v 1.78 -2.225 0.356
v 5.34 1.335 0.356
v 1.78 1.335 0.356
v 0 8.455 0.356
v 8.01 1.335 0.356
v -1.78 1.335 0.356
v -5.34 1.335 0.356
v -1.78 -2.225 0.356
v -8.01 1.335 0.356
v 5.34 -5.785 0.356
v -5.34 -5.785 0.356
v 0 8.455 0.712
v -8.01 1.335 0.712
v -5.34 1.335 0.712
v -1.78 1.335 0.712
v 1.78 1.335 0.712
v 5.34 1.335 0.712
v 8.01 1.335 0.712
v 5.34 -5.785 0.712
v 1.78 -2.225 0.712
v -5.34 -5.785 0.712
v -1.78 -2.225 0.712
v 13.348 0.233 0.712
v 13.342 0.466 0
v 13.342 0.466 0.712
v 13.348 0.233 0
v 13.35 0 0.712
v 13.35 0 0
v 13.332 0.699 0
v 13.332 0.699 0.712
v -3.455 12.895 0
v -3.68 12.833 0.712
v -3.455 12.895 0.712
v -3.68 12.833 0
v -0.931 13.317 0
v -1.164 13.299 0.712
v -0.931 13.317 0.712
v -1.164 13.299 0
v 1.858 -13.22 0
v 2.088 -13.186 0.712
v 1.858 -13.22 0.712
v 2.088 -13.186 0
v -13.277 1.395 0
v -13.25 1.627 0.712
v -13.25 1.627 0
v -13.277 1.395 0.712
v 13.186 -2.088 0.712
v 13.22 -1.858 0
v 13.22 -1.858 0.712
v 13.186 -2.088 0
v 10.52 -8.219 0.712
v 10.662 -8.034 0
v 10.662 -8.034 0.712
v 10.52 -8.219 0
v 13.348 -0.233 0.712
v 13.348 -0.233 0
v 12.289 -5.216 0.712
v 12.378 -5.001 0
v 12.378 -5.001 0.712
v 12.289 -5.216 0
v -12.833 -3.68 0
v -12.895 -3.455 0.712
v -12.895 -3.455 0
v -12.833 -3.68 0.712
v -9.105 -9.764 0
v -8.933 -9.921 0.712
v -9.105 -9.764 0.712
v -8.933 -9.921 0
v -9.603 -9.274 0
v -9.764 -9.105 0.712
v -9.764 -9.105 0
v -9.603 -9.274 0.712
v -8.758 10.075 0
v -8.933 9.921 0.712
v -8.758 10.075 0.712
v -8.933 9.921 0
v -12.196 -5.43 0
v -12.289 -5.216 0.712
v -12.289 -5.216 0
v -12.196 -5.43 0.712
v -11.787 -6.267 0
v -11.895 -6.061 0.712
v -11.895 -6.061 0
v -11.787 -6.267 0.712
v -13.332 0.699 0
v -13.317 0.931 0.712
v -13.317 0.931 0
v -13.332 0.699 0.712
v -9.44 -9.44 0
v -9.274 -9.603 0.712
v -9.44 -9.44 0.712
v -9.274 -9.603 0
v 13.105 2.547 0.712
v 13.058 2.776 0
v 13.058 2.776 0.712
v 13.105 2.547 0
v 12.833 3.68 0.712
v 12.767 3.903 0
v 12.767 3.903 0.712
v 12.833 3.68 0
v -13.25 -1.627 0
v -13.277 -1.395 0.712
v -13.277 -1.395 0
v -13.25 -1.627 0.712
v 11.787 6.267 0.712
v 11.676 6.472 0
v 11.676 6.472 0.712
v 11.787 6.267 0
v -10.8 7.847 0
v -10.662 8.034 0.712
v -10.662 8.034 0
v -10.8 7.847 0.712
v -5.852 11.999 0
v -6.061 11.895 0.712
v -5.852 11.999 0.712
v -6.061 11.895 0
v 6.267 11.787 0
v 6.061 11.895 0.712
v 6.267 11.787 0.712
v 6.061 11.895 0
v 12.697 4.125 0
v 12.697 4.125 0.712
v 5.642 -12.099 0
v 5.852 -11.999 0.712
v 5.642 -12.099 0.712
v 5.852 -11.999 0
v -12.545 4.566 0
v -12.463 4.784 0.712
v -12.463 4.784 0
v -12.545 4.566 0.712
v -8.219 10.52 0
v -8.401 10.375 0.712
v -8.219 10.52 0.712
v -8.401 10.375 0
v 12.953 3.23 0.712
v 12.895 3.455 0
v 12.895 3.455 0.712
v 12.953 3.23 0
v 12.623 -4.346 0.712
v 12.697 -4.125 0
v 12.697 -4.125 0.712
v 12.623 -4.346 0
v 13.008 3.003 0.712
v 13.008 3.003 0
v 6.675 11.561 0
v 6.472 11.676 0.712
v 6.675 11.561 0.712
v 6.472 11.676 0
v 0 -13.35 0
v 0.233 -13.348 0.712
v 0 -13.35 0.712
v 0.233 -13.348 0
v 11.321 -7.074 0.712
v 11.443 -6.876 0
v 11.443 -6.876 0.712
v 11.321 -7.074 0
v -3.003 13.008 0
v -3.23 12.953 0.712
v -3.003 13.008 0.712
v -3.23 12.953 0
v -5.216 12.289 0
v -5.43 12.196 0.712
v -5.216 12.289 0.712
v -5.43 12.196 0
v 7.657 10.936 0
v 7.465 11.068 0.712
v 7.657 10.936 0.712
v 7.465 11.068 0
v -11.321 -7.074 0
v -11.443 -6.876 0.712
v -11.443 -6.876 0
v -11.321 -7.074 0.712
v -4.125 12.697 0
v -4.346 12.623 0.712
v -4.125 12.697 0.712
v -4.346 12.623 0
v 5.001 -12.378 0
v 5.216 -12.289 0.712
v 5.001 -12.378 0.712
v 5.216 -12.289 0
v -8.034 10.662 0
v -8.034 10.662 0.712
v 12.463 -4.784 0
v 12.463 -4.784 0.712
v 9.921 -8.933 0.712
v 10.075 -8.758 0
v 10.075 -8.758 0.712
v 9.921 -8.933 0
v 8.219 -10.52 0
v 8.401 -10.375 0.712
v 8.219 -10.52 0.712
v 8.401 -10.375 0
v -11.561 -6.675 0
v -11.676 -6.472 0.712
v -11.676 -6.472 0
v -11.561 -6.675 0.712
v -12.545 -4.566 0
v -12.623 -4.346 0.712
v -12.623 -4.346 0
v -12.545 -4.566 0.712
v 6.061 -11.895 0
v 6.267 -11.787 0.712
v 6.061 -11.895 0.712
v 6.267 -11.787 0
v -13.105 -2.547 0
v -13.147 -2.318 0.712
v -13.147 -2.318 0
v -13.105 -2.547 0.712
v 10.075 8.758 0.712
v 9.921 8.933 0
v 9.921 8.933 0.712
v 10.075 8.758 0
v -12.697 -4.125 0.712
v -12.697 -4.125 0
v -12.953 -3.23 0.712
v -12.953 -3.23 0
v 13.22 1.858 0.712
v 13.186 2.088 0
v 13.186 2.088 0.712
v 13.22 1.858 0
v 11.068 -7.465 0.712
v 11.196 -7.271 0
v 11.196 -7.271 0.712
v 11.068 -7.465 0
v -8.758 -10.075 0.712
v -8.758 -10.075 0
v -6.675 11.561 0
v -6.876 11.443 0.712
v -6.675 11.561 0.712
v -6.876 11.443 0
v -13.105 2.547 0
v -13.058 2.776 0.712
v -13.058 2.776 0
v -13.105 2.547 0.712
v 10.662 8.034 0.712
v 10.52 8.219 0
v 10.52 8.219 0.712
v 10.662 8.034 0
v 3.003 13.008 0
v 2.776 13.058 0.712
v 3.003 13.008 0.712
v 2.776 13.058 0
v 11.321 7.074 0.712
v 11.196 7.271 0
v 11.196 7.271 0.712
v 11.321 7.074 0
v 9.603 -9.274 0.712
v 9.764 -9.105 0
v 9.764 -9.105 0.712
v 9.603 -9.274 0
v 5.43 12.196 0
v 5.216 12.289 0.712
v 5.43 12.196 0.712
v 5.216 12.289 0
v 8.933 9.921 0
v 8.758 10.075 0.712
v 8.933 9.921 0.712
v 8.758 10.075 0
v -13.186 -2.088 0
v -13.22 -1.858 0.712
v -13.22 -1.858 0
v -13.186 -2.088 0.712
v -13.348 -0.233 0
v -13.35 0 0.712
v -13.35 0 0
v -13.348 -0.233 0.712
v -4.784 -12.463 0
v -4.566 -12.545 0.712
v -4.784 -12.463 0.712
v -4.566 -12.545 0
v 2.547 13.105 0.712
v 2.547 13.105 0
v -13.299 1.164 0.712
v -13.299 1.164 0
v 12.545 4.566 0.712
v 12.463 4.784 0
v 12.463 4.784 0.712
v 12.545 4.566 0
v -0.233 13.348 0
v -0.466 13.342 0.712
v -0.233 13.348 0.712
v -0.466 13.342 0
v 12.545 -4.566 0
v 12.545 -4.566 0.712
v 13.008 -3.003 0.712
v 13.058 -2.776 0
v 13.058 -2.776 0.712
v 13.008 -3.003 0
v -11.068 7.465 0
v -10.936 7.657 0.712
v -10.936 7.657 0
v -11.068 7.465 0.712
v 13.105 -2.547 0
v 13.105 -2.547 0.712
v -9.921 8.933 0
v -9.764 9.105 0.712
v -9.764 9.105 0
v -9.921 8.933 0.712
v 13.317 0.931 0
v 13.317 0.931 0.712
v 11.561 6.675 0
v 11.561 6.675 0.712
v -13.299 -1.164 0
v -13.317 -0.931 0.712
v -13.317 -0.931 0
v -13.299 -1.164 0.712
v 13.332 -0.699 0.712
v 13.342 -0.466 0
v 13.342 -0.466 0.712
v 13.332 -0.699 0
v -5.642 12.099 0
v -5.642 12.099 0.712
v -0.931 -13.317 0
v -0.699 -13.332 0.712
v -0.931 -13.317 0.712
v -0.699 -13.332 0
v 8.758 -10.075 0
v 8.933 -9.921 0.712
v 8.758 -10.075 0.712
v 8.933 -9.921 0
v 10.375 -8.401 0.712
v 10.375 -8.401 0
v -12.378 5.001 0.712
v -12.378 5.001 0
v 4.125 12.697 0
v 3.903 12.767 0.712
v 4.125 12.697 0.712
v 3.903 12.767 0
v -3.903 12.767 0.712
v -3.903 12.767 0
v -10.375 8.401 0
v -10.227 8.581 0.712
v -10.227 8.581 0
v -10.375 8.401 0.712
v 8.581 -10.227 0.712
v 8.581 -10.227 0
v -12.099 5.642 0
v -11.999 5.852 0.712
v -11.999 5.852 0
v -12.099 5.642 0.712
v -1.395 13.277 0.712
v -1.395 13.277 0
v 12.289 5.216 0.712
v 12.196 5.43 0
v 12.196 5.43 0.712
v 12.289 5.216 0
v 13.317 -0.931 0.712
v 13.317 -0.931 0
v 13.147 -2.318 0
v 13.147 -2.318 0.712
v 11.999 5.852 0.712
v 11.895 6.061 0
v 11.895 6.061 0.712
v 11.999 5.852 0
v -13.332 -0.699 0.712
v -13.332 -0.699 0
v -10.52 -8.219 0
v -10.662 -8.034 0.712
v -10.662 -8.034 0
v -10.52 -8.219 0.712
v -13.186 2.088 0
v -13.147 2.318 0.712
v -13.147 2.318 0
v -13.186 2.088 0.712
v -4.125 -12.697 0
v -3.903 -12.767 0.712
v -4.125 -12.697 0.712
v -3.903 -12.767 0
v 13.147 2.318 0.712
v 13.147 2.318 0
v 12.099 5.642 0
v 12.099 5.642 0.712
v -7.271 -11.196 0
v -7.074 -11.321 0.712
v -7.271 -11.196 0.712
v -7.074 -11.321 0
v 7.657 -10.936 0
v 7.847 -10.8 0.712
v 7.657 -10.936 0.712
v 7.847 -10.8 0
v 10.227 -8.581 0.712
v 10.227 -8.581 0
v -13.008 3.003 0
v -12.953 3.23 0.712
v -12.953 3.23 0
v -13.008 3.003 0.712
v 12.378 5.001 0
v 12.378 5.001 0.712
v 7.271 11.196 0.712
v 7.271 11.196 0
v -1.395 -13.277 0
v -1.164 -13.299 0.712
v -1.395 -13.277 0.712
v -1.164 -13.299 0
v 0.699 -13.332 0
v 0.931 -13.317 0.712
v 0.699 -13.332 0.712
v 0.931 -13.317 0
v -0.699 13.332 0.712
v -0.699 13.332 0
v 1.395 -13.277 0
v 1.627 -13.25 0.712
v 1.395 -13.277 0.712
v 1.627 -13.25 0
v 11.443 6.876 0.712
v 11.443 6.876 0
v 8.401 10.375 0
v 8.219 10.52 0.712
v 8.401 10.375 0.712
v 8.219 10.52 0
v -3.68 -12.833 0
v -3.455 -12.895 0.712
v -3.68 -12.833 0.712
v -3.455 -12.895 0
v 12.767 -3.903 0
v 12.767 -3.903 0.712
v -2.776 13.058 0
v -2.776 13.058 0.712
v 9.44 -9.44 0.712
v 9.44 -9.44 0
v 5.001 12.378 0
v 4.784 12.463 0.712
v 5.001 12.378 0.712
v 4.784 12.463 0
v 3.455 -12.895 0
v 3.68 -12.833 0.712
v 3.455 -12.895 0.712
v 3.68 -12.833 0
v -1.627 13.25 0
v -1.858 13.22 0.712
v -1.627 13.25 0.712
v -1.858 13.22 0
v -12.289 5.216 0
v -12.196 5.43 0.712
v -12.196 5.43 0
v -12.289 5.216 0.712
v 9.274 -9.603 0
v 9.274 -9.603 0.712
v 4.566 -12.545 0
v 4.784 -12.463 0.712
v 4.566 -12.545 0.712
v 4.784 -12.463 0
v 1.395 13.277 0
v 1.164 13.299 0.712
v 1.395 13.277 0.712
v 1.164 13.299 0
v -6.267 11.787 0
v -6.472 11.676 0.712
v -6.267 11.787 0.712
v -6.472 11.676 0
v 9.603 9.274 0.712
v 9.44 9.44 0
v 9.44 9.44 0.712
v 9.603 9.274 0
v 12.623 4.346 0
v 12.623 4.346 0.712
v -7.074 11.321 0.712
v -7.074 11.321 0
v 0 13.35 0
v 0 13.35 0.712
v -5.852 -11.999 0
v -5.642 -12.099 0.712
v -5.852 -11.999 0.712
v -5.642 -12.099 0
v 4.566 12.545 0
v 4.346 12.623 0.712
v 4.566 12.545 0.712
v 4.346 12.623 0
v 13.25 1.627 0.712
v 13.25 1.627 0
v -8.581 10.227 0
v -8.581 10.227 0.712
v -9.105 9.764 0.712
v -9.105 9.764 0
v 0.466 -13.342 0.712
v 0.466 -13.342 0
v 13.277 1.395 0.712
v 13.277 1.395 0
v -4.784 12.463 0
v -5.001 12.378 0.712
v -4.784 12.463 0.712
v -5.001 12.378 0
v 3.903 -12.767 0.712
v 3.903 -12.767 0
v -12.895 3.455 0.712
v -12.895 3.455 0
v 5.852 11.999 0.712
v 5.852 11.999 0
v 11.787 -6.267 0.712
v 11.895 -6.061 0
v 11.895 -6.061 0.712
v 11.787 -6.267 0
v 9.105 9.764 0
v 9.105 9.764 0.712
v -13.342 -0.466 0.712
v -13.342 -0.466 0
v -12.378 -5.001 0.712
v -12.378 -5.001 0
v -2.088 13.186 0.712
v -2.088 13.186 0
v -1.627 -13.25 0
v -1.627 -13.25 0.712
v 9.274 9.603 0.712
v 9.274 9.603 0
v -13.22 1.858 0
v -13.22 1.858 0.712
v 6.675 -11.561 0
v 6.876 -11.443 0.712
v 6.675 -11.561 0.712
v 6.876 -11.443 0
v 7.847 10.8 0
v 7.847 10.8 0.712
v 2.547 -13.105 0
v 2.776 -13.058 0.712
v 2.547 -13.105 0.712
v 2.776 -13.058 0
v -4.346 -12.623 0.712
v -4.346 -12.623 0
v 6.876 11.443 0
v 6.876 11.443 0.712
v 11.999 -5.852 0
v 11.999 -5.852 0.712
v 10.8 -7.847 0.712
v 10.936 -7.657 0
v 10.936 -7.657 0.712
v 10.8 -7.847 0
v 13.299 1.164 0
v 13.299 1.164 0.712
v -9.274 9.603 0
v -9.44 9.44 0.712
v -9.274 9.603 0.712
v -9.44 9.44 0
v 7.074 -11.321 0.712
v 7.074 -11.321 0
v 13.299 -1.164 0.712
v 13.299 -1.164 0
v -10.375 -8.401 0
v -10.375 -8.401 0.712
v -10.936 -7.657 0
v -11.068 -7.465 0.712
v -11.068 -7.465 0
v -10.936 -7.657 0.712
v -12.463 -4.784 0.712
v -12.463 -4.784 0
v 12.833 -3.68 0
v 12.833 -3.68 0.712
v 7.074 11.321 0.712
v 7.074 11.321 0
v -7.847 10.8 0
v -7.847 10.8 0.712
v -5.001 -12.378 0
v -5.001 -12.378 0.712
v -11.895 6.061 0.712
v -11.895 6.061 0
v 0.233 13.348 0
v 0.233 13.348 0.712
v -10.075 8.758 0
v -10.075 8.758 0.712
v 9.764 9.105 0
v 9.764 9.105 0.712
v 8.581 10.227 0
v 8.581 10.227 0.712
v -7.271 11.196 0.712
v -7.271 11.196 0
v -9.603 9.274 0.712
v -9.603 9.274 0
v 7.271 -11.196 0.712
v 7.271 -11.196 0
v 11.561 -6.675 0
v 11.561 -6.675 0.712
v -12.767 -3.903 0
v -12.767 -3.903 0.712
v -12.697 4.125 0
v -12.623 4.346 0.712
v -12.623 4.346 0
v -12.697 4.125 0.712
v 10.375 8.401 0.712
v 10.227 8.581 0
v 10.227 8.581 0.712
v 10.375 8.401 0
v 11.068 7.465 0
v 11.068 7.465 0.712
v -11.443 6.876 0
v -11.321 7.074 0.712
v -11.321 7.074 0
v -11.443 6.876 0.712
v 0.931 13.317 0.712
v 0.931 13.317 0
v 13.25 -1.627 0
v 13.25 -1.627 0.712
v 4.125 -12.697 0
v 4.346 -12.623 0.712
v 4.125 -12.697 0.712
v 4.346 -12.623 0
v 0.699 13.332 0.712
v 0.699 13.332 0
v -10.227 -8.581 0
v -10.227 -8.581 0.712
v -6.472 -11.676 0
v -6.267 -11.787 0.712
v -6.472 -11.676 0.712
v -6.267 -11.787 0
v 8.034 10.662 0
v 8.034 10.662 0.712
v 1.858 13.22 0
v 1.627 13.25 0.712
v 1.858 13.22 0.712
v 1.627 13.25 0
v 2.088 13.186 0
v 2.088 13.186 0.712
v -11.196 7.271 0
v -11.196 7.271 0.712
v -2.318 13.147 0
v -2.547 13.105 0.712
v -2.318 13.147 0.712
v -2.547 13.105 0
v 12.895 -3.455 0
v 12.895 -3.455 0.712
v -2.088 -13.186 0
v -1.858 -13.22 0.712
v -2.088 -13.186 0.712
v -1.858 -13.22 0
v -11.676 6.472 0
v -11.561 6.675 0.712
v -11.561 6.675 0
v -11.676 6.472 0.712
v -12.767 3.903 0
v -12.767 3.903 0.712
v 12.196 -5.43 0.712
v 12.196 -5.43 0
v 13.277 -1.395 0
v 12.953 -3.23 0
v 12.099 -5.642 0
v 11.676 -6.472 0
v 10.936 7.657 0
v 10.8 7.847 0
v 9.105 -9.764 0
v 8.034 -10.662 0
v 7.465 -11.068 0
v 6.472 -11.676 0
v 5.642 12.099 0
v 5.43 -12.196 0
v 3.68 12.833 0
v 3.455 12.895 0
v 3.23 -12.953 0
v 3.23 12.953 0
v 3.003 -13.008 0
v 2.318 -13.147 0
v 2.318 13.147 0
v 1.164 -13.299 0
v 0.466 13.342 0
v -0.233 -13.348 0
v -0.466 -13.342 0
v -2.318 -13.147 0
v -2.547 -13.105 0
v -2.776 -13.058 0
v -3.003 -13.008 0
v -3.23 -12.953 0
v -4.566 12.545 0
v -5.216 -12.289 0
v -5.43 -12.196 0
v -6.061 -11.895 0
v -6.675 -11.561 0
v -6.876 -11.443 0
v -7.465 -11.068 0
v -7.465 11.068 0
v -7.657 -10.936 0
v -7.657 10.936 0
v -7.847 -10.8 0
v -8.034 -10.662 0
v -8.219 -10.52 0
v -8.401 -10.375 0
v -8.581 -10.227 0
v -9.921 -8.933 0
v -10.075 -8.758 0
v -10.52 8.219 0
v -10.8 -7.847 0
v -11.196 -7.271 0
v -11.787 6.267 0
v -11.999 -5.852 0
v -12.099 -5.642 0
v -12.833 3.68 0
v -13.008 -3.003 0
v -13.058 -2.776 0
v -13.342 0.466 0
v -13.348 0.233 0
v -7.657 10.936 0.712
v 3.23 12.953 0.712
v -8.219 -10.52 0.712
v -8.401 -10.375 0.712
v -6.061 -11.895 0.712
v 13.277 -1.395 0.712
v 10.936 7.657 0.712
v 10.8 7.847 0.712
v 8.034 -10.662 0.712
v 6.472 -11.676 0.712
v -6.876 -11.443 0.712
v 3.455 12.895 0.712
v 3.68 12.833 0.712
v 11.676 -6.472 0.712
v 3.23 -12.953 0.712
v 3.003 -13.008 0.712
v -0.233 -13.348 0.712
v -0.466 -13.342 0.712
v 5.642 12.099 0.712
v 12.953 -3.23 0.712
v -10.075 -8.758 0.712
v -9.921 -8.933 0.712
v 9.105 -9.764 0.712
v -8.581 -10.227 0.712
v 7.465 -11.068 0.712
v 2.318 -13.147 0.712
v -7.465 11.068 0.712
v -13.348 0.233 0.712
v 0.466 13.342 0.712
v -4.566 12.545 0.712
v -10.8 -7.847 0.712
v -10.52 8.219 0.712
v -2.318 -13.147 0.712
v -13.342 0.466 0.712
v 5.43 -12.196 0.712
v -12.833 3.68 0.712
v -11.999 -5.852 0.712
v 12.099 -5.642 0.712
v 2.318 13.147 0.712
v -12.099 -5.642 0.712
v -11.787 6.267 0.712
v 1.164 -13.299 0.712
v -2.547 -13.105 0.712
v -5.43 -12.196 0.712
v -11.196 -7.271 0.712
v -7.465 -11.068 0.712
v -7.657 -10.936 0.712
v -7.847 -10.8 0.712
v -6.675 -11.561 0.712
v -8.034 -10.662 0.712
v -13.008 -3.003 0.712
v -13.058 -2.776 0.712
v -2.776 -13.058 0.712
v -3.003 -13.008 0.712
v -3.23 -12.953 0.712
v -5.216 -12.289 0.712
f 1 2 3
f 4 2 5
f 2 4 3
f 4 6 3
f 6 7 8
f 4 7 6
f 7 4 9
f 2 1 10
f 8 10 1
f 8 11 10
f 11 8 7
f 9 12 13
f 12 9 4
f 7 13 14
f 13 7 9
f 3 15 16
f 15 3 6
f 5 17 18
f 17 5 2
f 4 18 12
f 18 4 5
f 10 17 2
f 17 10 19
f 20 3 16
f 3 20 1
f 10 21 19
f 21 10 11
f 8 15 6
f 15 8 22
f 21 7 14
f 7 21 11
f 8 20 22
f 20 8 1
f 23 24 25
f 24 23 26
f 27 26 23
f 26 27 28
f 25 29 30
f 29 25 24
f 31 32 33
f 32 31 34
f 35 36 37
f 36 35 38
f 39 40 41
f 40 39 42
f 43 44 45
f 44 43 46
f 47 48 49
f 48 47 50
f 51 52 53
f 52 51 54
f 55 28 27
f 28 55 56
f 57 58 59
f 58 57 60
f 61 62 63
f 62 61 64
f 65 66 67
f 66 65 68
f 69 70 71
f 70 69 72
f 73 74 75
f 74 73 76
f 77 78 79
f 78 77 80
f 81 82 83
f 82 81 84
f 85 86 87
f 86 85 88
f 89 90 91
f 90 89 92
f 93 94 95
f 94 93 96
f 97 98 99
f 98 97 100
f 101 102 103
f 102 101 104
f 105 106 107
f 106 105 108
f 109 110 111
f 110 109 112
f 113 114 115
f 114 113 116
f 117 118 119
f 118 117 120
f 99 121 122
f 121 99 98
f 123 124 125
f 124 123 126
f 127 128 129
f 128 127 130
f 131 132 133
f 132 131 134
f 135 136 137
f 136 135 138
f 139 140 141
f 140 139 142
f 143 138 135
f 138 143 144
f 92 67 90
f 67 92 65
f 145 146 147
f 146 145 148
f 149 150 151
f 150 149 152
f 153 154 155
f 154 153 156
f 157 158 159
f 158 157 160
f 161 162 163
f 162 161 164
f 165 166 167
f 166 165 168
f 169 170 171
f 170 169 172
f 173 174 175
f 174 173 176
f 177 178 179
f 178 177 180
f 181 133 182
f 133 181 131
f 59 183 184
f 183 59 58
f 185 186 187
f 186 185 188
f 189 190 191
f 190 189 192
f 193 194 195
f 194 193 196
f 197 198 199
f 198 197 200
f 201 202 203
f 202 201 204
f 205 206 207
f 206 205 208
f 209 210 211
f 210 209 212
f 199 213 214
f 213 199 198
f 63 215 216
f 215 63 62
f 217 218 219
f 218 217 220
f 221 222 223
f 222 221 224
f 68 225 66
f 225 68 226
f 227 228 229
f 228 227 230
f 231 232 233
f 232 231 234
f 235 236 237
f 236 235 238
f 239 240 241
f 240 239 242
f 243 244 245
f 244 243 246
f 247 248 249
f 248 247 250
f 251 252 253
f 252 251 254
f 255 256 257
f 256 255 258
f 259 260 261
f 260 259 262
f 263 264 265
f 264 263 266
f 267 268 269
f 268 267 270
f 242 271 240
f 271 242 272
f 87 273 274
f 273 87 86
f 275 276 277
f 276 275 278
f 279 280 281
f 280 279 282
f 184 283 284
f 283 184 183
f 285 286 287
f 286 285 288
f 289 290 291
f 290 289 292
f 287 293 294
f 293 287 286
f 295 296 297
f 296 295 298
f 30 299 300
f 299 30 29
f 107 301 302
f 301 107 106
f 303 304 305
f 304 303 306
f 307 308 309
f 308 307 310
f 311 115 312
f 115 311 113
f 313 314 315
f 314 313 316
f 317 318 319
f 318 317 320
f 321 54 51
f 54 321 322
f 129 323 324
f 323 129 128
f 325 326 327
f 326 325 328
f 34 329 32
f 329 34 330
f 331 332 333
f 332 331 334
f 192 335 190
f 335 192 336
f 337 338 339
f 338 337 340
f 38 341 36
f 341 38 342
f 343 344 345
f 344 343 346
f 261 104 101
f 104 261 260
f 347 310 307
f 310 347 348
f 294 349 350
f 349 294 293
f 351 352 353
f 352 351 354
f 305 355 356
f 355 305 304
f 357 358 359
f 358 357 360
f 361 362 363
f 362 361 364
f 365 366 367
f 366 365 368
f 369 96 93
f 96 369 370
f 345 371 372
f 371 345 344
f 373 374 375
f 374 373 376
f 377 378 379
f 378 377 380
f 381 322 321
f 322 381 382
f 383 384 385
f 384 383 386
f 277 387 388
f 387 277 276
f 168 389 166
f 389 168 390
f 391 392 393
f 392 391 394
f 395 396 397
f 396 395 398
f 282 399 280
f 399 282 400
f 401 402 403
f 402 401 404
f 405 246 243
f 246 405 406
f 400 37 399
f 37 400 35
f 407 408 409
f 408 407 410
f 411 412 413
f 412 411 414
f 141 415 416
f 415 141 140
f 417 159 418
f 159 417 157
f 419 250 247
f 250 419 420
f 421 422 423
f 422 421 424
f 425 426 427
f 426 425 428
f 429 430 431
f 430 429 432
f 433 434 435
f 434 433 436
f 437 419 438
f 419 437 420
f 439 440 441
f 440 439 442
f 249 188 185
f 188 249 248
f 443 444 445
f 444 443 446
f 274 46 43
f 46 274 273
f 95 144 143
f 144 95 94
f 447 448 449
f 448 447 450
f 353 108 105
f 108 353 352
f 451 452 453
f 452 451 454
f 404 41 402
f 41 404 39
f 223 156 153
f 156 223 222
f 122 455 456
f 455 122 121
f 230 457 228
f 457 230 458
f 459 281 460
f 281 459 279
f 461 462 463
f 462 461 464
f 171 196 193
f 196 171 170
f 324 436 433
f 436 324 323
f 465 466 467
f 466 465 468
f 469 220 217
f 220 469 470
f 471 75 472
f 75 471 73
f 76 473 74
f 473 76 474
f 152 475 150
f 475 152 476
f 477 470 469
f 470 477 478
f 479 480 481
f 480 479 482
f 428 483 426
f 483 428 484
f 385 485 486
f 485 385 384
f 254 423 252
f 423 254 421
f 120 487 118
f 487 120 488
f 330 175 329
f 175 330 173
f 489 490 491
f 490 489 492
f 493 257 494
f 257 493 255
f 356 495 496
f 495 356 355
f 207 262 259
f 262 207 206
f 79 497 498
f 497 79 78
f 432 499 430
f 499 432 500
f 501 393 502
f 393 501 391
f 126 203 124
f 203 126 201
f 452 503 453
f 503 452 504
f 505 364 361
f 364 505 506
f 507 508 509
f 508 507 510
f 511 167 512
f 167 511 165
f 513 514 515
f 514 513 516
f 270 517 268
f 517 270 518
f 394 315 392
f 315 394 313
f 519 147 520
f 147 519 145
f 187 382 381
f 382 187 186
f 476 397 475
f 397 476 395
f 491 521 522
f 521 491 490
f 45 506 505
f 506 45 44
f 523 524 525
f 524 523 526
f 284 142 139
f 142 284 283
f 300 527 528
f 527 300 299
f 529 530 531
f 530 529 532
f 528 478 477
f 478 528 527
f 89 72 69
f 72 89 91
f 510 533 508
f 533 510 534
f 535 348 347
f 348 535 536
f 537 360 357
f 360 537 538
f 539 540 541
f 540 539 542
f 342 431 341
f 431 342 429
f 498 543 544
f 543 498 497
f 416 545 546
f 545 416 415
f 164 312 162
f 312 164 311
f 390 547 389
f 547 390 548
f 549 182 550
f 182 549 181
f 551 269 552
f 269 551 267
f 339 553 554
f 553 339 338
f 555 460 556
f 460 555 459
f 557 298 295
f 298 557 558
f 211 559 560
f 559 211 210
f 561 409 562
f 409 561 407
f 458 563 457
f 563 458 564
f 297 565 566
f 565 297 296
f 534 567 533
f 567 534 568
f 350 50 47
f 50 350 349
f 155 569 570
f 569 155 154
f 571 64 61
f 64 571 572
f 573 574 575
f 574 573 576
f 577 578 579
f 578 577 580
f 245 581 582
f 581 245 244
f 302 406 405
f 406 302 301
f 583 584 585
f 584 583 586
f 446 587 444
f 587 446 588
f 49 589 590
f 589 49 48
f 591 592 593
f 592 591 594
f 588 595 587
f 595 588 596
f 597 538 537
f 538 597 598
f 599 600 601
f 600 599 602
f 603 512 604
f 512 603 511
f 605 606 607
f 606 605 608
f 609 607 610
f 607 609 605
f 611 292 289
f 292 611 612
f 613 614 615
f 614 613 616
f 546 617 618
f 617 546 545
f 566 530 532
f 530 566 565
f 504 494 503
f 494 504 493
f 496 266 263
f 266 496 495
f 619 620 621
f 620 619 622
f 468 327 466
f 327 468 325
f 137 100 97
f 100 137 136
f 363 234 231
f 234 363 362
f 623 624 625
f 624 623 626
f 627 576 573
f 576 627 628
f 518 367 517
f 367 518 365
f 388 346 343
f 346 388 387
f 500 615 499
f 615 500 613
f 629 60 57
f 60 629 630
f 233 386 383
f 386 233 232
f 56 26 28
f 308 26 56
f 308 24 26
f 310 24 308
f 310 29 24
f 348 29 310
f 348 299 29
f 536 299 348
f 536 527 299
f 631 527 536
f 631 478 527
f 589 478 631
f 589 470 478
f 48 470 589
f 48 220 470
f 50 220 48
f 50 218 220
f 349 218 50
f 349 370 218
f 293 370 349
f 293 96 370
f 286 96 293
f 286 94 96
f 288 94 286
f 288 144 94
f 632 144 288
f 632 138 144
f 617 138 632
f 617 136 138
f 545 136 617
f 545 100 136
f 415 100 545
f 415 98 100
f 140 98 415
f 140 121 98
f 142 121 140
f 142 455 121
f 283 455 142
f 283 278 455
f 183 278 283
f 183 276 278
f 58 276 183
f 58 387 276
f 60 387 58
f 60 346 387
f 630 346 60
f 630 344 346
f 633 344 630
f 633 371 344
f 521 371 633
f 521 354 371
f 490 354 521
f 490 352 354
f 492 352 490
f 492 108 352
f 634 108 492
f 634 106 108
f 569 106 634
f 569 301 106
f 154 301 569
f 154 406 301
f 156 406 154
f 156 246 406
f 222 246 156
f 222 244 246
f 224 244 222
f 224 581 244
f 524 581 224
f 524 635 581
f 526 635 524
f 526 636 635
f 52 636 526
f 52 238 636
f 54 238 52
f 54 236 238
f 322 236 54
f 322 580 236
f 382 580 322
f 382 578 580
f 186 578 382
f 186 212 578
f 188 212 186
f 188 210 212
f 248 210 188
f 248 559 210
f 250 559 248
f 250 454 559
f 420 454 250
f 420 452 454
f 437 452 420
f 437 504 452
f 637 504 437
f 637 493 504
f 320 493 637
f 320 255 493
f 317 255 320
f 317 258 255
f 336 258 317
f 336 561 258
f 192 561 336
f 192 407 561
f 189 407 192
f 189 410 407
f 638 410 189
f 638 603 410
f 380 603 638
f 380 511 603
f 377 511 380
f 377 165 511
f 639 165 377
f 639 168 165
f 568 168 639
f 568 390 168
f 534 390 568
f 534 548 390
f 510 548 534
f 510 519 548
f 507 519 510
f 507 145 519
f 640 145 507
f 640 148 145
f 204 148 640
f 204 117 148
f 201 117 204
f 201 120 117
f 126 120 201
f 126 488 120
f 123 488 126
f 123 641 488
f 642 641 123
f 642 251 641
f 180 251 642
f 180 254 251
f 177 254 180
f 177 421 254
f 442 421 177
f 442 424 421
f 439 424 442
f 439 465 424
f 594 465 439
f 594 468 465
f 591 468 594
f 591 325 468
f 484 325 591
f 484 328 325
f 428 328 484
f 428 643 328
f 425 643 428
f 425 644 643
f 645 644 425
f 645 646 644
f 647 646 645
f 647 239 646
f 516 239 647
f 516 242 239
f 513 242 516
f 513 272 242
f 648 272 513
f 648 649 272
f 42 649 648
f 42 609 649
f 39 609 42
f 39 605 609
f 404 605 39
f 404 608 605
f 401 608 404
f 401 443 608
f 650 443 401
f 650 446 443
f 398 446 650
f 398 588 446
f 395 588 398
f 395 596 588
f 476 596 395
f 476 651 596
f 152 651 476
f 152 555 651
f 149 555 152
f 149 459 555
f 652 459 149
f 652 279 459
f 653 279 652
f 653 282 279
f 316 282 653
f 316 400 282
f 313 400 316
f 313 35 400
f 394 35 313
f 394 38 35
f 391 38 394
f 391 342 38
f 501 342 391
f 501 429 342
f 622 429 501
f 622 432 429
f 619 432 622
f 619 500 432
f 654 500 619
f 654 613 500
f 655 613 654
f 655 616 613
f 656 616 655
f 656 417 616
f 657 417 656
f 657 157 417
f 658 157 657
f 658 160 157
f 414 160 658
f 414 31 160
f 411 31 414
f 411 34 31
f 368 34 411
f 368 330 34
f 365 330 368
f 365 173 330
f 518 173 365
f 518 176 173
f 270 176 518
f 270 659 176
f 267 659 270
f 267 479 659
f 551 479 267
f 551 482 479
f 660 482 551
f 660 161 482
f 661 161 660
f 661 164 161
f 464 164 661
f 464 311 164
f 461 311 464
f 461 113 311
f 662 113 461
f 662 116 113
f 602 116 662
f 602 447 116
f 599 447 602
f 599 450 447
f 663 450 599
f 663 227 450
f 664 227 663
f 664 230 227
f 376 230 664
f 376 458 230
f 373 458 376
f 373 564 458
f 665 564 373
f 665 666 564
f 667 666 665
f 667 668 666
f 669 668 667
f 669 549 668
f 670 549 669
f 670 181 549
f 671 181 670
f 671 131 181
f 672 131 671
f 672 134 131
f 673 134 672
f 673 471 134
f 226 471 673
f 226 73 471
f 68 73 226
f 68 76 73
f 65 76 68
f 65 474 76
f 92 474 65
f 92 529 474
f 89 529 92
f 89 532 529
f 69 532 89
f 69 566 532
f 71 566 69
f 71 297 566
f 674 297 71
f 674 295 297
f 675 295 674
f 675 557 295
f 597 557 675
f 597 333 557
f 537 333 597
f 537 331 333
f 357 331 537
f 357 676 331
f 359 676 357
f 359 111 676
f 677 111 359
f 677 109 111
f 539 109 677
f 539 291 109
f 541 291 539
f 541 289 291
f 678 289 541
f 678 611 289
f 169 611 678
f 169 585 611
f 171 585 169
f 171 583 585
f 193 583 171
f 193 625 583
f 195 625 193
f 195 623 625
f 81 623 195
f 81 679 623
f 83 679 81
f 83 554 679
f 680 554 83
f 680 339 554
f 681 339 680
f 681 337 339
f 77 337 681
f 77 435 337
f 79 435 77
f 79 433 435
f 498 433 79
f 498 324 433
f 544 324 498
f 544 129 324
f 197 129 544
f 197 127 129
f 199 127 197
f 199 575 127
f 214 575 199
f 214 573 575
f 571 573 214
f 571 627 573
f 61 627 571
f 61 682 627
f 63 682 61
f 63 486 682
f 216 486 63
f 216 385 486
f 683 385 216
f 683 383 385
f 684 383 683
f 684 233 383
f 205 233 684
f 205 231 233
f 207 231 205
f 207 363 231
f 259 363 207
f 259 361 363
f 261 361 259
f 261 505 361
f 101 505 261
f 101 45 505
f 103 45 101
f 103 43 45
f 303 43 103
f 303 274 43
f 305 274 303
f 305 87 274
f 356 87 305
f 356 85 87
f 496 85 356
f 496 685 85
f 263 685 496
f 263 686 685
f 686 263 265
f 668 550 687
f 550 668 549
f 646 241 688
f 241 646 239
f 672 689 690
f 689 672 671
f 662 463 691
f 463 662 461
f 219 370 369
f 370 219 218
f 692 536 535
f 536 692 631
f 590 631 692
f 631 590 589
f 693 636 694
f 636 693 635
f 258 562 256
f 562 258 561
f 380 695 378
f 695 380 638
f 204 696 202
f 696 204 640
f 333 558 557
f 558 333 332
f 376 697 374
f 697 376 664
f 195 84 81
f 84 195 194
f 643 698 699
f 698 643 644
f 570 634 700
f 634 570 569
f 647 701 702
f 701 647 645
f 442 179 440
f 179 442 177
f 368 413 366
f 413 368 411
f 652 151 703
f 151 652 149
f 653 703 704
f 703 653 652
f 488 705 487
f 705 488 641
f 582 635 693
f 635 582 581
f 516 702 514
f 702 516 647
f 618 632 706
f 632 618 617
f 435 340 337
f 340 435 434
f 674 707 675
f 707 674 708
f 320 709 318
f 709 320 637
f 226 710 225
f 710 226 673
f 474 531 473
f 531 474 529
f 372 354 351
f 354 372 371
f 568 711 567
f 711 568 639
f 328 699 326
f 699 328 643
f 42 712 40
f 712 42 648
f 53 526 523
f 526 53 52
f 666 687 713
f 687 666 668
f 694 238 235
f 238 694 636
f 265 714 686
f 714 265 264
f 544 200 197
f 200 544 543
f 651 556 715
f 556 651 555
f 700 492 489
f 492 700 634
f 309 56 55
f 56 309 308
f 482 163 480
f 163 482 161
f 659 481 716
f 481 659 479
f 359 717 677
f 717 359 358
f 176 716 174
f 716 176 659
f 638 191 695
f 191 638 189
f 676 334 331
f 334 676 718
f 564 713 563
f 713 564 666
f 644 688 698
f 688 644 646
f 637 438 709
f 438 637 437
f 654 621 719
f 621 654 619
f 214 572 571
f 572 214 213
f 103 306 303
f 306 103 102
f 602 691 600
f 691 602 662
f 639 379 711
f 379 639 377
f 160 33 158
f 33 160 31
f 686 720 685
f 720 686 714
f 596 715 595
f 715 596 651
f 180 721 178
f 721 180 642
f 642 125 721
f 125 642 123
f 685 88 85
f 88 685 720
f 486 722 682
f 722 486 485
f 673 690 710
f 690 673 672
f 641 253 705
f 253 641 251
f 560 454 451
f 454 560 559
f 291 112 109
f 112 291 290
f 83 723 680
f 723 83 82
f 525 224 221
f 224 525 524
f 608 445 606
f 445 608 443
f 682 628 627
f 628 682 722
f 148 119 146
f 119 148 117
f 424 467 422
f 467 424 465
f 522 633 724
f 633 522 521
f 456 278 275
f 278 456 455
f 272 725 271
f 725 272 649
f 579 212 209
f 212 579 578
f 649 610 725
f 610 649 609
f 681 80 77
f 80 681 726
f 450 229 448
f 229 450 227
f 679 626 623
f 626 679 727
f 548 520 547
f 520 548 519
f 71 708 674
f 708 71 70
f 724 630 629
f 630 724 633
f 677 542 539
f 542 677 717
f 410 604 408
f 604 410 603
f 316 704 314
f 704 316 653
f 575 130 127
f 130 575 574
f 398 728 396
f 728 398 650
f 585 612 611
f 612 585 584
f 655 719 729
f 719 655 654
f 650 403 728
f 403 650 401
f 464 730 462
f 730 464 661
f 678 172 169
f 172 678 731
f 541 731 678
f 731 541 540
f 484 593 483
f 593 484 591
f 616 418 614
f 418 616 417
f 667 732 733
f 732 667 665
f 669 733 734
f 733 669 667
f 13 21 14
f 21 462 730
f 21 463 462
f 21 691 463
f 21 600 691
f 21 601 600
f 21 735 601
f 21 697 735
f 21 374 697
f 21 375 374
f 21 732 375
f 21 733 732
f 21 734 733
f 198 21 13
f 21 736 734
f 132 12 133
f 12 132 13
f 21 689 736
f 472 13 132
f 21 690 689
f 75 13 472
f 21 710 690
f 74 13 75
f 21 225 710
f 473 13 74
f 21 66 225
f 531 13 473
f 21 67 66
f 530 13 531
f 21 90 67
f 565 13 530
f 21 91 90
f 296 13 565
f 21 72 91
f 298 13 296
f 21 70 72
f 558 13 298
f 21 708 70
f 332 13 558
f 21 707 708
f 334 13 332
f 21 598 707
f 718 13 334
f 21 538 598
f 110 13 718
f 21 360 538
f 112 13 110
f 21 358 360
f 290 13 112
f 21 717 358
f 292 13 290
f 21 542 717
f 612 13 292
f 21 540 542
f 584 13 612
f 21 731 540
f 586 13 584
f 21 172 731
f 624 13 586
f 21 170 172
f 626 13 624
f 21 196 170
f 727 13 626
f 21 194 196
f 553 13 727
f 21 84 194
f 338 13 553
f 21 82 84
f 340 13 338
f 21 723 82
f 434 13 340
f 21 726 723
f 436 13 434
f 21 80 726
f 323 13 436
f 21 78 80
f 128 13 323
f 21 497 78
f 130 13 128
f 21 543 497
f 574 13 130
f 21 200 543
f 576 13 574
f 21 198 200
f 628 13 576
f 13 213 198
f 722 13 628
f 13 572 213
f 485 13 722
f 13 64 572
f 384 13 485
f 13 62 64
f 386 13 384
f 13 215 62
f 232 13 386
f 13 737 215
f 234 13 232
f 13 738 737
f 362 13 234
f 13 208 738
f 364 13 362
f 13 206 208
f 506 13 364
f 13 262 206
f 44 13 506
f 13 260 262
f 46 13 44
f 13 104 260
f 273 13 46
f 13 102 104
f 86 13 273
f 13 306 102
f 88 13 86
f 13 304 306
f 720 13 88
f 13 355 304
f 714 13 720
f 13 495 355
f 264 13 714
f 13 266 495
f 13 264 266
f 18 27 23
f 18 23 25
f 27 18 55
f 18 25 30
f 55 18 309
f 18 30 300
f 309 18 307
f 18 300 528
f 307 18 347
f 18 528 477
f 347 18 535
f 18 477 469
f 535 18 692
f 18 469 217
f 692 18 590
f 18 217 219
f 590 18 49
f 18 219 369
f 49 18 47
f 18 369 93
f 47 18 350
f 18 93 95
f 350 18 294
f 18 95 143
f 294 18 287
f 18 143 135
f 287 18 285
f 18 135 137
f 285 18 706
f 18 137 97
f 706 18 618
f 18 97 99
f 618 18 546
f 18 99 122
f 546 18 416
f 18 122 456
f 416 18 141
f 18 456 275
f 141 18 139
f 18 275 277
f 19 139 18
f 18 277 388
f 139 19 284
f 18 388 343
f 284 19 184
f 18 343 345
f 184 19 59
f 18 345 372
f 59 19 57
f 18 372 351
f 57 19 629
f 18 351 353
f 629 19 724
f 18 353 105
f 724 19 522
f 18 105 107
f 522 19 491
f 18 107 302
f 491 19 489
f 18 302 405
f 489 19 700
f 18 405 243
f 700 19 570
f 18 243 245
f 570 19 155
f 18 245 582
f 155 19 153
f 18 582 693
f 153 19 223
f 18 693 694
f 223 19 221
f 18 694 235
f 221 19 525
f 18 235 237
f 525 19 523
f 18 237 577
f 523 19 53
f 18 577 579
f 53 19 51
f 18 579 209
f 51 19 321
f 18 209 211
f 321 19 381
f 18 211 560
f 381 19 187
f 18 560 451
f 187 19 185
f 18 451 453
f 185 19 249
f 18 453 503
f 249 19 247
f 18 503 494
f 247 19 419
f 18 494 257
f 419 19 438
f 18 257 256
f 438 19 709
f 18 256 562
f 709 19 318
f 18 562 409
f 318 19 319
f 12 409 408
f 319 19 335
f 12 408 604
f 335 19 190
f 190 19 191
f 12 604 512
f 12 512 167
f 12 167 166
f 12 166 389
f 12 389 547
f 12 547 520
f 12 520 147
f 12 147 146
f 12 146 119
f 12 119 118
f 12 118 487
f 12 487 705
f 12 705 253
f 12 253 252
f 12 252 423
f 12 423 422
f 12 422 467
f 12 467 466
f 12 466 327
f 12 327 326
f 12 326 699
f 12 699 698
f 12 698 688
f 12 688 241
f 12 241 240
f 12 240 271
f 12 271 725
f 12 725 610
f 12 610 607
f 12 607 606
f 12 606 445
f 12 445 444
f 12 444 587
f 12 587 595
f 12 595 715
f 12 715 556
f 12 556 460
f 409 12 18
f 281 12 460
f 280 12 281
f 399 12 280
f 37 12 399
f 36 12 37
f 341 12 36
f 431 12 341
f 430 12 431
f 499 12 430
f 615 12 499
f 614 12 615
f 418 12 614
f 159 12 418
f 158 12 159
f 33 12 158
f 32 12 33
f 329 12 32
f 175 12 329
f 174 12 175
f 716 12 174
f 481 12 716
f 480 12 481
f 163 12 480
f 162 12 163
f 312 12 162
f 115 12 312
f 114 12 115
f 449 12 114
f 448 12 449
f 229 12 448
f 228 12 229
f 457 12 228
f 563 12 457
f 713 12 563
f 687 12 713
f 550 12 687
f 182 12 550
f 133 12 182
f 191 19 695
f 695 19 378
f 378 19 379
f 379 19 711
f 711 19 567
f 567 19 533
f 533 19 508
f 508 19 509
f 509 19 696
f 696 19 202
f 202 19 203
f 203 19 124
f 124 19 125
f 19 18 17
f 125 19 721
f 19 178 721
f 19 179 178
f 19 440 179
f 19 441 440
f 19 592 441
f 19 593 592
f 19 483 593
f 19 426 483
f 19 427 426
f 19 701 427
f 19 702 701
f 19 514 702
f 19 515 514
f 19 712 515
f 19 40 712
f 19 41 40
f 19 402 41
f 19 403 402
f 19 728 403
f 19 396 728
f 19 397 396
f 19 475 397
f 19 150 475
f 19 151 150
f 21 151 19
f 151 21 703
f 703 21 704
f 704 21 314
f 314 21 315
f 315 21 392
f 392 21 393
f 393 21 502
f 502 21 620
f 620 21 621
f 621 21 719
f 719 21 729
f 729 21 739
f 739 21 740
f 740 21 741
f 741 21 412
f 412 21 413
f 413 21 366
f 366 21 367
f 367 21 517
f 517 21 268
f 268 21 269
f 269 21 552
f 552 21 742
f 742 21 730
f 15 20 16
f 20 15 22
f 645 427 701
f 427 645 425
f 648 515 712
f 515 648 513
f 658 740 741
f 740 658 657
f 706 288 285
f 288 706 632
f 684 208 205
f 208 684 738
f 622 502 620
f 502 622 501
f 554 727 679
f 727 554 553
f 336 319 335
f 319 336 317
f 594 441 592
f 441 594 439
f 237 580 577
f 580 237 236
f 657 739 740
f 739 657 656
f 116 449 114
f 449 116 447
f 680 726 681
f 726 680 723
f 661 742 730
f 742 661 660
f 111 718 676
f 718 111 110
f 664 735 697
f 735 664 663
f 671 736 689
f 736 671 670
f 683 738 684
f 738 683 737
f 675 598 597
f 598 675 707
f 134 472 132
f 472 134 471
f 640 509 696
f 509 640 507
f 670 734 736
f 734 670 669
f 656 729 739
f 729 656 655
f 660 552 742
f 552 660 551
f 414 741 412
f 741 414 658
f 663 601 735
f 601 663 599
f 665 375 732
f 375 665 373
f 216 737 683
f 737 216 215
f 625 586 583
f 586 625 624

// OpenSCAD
// file: triangles.scad
/*
Triangles.scad
 Author: Tim Koopman
 https://github.com/tkoopman/Delta-Diamond/blob/master/OpenSCAD/Triangles.scad

         angleCA
           /|\
        a / H \ c
         /  |  \
 angleAB ------- angleBC
            b

Standard Parameters
	center: true/false
		If true same as centerXYZ = [true, true, true]

	centerXYZ: Vector of 3 true/false values [CenterX, CenterY, CenterZ]
		center must be left undef

	height: The 3D height of the Triangle. Ignored if heights defined

	heights: Vector of 3 height values heights @ [angleAB, angleBC, angleCA]
		If CenterZ is true each height will be centered individually, this means
		the shape will be different depending on CenterZ. Most times you will want
		CenterZ to be true to get the shape most people want.
*/

/* 
Triangle
	a: Length of side a
	b: Length of side b
	angle: angle at point angleAB
*/
module Triangle(
			a, b, angle, height=1, heights=undef,
			center=undef, centerXYZ=[false,false,false])
{
	// Calculate Heights at each point
	heightAB = ((heights==undef) ? height : heights[0])/2;
	heightBC = ((heights==undef) ? height : heights[1])/2;
	heightCA = ((heights==undef) ? height : heights[2])/2;
	centerZ = (center || (center==undef && centerXYZ[2]))?0:max(heightAB,heightBC,heightCA);

	// Calculate Offsets for centering
	offsetX = (center || (center==undef && centerXYZ[0]))?((cos(angle)*a)+b)/3:0;
	offsetY = (center || (center==undef && centerXYZ[1]))?(sin(angle)*a)/3:0;
	
	pointAB1 = [-offsetX,-offsetY, centerZ-heightAB];
	pointAB2 = [-offsetX,-offsetY, centerZ+heightAB];
	pointBC1 = [b-offsetX,-offsetY, centerZ-heightBC];
	pointBC2 = [b-offsetX,-offsetY, centerZ+heightBC];
	pointCA1 = [(cos(angle)*a)-offsetX,(sin(angle)*a)-offsetY, centerZ-heightCA];
	pointCA2 = [(cos(angle)*a)-offsetX,(sin(angle)*a)-offsetY, centerZ+heightCA];

	polyhedron(
		points=[	pointAB1, pointBC1, pointCA1,
					pointAB2, pointBC2, pointCA2 ],
		triangles=[	
			[0, 1, 2],
			[3, 5, 4],
			[0, 3, 1],
			[1, 3, 4],
			[1, 4, 2],
			[2, 4, 5],
			[2, 5, 0],
			[0, 5, 3] ] );
}

/*
Isosceles Triangle
	Exactly 2 of the following paramaters must be defined.
	If all 3 defined H will be ignored.
	b: length of side b
	angle: angle at points angleAB & angleBC.
*/
module Isosceles_Triangle(
			b, angle, H=undef, height=1, heights=undef,
			center=undef, centerXYZ=[true, false, false])
{
	valid = 	(angle!=undef)?((angle < 90) && (b!=undef||H!=undef)) : (b!=undef&&H!=undef);
	ANGLE = (angle!=undef) ? angle : atan(H / (b/2));
	a = (b==undef)?(H/sin((180-(angle*2))/2)) : 
		 (b / cos(ANGLE))/2;
	B = (b==undef)? (cos(angle)*a)*2:b;
	if (valid)
	{
		Triangle(a=a, b=B, angle=ANGLE, height=height, heights=heights,
					center=center, centerXYZ=centerXYZ);
	} else {
		echo("Invalid Isosceles_Triangle. Must specify any 2 of b, angle and H, and if angle used angle must be less than 90");
	}
}

/*
Right Angled Triangle
	Create a Right Angled Triangle where the hypotenuse will be calculated.

       |\
      a| \
       |  \
       ----
         b
	a: length of side a
	b: length of side b
*/
module Right_Angled_Triangle(
			a, b, height=1, heights=undef,
			center=undef, centerXYZ=[false, false, false])
{
	Triangle(a=a, b=b, angle=90, height=height, heights=heights,
				center=center, centerXYZ=centerXYZ);
}

/*
Wedge
	Is same as Right Angled Triangle with 2 different heights, and rotated.
	Good for creating support structures.
*/
module Wedge(a, b, w1, w2)
{
	rotate([90,0,0])
		Right_Angled_Triangle(a, b, heights=[w1, w2, w1], centerXYZ=[false, false, true]);
}

/*
Equilateral Triangle
	Create a Equilateral Triangle.

	l: Length of all sides (a, b & c)
	H: Triangle size will be based on the this 2D height
		When using H, l is ignored.
*/
module Equilateral_Triangle(
			l=10, H=undef, height=1, heights=undef,
			center=undef, centerXYZ=[true,false,false])
{
	L = (H==undef)?l:H/sin(60);
	Triangle(a=L,b=L,angle=60,height=height, heights=heights,
				center=center, centerXYZ=centerXYZ);
}

/*
Trapezoid
	Create a Basic Trapezoid (Based on Isosceles_Triangle)

            d
          /----\
         /  |   \
     a  /   H    \ c
       /    |     \
 angle ------------ angle
            b

	b: Length of side b
	angle: Angle at points angleAB & angleBC
	H: The 2D height at which the triangle should be cut to create the trapezoid
	heights: If vector of size 3 (Standard for triangles) both cd & da will be the same height, if vector have 4 values [ab,bc,cd,da] than each point can have different heights.
*/
module Trapezoid(
			b, angle=60, H, height=1, heights=undef,
			center=undef, centerXYZ=[true,false,false])
{
	validAngle = (angle < 90);
	adX = H / tan(angle);

	// Calculate Heights at each point
	heightAB = ((heights==undef) ? height : heights[0])/2;
	heightBC = ((heights==undef) ? height : heights[1])/2;
	heightCD = ((heights==undef) ? height : heights[2])/2;
	heightDA = ((heights==undef) ? height : ((len(heights) > 3)?heights[3]:heights[2]))/2;

	// Centers
	centerX = (center || (center==undef && centerXYZ[0]))?0:b/2;
	centerY = (center || (center==undef && centerXYZ[1]))?0:H/2;
	centerZ = (center || (center==undef && centerXYZ[2]))?0:max(heightAB,heightBC,heightCD,heightDA);

	// Points
	y = H/2;
	bx = b/2;
	dx = (b-(adX*2))/2;

	pointAB1 = [centerX-bx, centerY-y, centerZ-heightAB];
	pointAB2 = [centerX-bx, centerY-y, centerZ+heightAB];
	pointBC1 = [centerX+bx, centerY-y, centerZ-heightBC];
	pointBC2 = [centerX+bx, centerY-y, centerZ+heightBC];
	pointCD1 = [centerX+dx, centerY+y, centerZ-heightCD];
	pointCD2 = [centerX+dx, centerY+y, centerZ+heightCD];
	pointDA1 = [centerX-dx, centerY+y, centerZ-heightDA];
	pointDA2 = [centerX-dx, centerY+y, centerZ+heightDA];

	validH = (adX < b/2);

	if (validAngle && validH)
	{
		polyhedron(
			points=[	pointAB1, pointBC1, pointCD1, pointDA1,
						pointAB2, pointBC2, pointCD2, pointDA2 ],
			triangles=[	
				[0, 1, 2],
				[0, 2, 3],
				[4, 6, 5],
				[4, 7, 6],
				[0, 4, 1],
				[1, 4, 5],
				[1, 5, 2],
				[2, 5, 6],
				[2, 6, 3],
				[3, 6, 7],
				[3, 7, 0],
				[0, 7, 4]	] );
	} else {
		if (!validAngle) echo("Trapezoid invalid, angle must be less than 90");
		else echo("Trapezoid invalid, H is larger than triangle");
	}
}


// Examples
// Triangle(a=5, b=15, angle=33, centerXYZ=[true,false,false]);
// translate([20,0,0]) Right_Angled_Triangle(a=5, b=20, centerXYZ=[false,true,false]);
// translate([45,0,0]) Wedge(a=5, b=20, w1=10, w2=5);
// translate([-20,0,0]) Trapezoid(b=20, angle=33, H=4, height=5, centerXYZ=[true,false,true]);

// translate([0,10,0]) Isosceles_Triangle(b=20, angle=33);
// translate([30,10,0]) Isosceles_Triangle(b=20, H=5);
// translate([-30,10,0]) Isosceles_Triangle(angle=33, H=5, center=true);

// translate([15,-25,0]) Equilateral_Triangle(l=20);
// translate([-15,-25,0]) Equilateral_Triangle(H=20);
// main file
$fn = 360;

include<triangles.scad>

// Actual measured button dimensions in mm.
// this just makes a single black button. We don't bother with the clear outer circle; it's included in this measurement.
ACTUAL_CIRCLE_DIAMETER = 7.5;
ACTUAL_HEIGHT = 0.2;

TRIANGLE_BASE = 4.5;
TRIANGLE_HEIGHT = 2;

WALL_HEIGHT = 2;
WALL_WIDTH = 1;
WALL_THICKNESS = 1;

BASE_WIDTH = 3;
BASE_HEIGHT = 1;


// set to how much larger than actual it should be.
SCALING_FACTOR = 3.56;

module home() {
    Isosceles_Triangle(b = TRIANGLE_BASE, H = TRIANGLE_HEIGHT);
    translate([WALL_WIDTH, -WALL_HEIGHT/2, WALL_THICKNESS/2]) {
        cube([WALL_WIDTH, WALL_HEIGHT, WALL_THICKNESS], true);
    }
    translate([-WALL_WIDTH, -WALL_HEIGHT/2, WALL_THICKNESS/2]) {
        cube([WALL_WIDTH, WALL_HEIGHT, WALL_THICKNESS], true);
    }
    translate([0, -WALL_HEIGHT + BASE_HEIGHT/2, WALL_THICKNESS/2]) {
        cube([BASE_WIDTH, BASE_HEIGHT, WALL_THICKNESS], true);
    }

}

scale(v = [SCALING_FACTOR, SCALING_FACTOR, SCALING_FACTOR]) {

    difference() {
        cylinder(d = ACTUAL_CIRCLE_DIAMETER, h = ACTUAL_HEIGHT);
        translate([0, ACTUAL_CIRCLE_DIAMETER/20 ,ACTUAL_HEIGHT/2]) {
            home();
        }
    }

}
